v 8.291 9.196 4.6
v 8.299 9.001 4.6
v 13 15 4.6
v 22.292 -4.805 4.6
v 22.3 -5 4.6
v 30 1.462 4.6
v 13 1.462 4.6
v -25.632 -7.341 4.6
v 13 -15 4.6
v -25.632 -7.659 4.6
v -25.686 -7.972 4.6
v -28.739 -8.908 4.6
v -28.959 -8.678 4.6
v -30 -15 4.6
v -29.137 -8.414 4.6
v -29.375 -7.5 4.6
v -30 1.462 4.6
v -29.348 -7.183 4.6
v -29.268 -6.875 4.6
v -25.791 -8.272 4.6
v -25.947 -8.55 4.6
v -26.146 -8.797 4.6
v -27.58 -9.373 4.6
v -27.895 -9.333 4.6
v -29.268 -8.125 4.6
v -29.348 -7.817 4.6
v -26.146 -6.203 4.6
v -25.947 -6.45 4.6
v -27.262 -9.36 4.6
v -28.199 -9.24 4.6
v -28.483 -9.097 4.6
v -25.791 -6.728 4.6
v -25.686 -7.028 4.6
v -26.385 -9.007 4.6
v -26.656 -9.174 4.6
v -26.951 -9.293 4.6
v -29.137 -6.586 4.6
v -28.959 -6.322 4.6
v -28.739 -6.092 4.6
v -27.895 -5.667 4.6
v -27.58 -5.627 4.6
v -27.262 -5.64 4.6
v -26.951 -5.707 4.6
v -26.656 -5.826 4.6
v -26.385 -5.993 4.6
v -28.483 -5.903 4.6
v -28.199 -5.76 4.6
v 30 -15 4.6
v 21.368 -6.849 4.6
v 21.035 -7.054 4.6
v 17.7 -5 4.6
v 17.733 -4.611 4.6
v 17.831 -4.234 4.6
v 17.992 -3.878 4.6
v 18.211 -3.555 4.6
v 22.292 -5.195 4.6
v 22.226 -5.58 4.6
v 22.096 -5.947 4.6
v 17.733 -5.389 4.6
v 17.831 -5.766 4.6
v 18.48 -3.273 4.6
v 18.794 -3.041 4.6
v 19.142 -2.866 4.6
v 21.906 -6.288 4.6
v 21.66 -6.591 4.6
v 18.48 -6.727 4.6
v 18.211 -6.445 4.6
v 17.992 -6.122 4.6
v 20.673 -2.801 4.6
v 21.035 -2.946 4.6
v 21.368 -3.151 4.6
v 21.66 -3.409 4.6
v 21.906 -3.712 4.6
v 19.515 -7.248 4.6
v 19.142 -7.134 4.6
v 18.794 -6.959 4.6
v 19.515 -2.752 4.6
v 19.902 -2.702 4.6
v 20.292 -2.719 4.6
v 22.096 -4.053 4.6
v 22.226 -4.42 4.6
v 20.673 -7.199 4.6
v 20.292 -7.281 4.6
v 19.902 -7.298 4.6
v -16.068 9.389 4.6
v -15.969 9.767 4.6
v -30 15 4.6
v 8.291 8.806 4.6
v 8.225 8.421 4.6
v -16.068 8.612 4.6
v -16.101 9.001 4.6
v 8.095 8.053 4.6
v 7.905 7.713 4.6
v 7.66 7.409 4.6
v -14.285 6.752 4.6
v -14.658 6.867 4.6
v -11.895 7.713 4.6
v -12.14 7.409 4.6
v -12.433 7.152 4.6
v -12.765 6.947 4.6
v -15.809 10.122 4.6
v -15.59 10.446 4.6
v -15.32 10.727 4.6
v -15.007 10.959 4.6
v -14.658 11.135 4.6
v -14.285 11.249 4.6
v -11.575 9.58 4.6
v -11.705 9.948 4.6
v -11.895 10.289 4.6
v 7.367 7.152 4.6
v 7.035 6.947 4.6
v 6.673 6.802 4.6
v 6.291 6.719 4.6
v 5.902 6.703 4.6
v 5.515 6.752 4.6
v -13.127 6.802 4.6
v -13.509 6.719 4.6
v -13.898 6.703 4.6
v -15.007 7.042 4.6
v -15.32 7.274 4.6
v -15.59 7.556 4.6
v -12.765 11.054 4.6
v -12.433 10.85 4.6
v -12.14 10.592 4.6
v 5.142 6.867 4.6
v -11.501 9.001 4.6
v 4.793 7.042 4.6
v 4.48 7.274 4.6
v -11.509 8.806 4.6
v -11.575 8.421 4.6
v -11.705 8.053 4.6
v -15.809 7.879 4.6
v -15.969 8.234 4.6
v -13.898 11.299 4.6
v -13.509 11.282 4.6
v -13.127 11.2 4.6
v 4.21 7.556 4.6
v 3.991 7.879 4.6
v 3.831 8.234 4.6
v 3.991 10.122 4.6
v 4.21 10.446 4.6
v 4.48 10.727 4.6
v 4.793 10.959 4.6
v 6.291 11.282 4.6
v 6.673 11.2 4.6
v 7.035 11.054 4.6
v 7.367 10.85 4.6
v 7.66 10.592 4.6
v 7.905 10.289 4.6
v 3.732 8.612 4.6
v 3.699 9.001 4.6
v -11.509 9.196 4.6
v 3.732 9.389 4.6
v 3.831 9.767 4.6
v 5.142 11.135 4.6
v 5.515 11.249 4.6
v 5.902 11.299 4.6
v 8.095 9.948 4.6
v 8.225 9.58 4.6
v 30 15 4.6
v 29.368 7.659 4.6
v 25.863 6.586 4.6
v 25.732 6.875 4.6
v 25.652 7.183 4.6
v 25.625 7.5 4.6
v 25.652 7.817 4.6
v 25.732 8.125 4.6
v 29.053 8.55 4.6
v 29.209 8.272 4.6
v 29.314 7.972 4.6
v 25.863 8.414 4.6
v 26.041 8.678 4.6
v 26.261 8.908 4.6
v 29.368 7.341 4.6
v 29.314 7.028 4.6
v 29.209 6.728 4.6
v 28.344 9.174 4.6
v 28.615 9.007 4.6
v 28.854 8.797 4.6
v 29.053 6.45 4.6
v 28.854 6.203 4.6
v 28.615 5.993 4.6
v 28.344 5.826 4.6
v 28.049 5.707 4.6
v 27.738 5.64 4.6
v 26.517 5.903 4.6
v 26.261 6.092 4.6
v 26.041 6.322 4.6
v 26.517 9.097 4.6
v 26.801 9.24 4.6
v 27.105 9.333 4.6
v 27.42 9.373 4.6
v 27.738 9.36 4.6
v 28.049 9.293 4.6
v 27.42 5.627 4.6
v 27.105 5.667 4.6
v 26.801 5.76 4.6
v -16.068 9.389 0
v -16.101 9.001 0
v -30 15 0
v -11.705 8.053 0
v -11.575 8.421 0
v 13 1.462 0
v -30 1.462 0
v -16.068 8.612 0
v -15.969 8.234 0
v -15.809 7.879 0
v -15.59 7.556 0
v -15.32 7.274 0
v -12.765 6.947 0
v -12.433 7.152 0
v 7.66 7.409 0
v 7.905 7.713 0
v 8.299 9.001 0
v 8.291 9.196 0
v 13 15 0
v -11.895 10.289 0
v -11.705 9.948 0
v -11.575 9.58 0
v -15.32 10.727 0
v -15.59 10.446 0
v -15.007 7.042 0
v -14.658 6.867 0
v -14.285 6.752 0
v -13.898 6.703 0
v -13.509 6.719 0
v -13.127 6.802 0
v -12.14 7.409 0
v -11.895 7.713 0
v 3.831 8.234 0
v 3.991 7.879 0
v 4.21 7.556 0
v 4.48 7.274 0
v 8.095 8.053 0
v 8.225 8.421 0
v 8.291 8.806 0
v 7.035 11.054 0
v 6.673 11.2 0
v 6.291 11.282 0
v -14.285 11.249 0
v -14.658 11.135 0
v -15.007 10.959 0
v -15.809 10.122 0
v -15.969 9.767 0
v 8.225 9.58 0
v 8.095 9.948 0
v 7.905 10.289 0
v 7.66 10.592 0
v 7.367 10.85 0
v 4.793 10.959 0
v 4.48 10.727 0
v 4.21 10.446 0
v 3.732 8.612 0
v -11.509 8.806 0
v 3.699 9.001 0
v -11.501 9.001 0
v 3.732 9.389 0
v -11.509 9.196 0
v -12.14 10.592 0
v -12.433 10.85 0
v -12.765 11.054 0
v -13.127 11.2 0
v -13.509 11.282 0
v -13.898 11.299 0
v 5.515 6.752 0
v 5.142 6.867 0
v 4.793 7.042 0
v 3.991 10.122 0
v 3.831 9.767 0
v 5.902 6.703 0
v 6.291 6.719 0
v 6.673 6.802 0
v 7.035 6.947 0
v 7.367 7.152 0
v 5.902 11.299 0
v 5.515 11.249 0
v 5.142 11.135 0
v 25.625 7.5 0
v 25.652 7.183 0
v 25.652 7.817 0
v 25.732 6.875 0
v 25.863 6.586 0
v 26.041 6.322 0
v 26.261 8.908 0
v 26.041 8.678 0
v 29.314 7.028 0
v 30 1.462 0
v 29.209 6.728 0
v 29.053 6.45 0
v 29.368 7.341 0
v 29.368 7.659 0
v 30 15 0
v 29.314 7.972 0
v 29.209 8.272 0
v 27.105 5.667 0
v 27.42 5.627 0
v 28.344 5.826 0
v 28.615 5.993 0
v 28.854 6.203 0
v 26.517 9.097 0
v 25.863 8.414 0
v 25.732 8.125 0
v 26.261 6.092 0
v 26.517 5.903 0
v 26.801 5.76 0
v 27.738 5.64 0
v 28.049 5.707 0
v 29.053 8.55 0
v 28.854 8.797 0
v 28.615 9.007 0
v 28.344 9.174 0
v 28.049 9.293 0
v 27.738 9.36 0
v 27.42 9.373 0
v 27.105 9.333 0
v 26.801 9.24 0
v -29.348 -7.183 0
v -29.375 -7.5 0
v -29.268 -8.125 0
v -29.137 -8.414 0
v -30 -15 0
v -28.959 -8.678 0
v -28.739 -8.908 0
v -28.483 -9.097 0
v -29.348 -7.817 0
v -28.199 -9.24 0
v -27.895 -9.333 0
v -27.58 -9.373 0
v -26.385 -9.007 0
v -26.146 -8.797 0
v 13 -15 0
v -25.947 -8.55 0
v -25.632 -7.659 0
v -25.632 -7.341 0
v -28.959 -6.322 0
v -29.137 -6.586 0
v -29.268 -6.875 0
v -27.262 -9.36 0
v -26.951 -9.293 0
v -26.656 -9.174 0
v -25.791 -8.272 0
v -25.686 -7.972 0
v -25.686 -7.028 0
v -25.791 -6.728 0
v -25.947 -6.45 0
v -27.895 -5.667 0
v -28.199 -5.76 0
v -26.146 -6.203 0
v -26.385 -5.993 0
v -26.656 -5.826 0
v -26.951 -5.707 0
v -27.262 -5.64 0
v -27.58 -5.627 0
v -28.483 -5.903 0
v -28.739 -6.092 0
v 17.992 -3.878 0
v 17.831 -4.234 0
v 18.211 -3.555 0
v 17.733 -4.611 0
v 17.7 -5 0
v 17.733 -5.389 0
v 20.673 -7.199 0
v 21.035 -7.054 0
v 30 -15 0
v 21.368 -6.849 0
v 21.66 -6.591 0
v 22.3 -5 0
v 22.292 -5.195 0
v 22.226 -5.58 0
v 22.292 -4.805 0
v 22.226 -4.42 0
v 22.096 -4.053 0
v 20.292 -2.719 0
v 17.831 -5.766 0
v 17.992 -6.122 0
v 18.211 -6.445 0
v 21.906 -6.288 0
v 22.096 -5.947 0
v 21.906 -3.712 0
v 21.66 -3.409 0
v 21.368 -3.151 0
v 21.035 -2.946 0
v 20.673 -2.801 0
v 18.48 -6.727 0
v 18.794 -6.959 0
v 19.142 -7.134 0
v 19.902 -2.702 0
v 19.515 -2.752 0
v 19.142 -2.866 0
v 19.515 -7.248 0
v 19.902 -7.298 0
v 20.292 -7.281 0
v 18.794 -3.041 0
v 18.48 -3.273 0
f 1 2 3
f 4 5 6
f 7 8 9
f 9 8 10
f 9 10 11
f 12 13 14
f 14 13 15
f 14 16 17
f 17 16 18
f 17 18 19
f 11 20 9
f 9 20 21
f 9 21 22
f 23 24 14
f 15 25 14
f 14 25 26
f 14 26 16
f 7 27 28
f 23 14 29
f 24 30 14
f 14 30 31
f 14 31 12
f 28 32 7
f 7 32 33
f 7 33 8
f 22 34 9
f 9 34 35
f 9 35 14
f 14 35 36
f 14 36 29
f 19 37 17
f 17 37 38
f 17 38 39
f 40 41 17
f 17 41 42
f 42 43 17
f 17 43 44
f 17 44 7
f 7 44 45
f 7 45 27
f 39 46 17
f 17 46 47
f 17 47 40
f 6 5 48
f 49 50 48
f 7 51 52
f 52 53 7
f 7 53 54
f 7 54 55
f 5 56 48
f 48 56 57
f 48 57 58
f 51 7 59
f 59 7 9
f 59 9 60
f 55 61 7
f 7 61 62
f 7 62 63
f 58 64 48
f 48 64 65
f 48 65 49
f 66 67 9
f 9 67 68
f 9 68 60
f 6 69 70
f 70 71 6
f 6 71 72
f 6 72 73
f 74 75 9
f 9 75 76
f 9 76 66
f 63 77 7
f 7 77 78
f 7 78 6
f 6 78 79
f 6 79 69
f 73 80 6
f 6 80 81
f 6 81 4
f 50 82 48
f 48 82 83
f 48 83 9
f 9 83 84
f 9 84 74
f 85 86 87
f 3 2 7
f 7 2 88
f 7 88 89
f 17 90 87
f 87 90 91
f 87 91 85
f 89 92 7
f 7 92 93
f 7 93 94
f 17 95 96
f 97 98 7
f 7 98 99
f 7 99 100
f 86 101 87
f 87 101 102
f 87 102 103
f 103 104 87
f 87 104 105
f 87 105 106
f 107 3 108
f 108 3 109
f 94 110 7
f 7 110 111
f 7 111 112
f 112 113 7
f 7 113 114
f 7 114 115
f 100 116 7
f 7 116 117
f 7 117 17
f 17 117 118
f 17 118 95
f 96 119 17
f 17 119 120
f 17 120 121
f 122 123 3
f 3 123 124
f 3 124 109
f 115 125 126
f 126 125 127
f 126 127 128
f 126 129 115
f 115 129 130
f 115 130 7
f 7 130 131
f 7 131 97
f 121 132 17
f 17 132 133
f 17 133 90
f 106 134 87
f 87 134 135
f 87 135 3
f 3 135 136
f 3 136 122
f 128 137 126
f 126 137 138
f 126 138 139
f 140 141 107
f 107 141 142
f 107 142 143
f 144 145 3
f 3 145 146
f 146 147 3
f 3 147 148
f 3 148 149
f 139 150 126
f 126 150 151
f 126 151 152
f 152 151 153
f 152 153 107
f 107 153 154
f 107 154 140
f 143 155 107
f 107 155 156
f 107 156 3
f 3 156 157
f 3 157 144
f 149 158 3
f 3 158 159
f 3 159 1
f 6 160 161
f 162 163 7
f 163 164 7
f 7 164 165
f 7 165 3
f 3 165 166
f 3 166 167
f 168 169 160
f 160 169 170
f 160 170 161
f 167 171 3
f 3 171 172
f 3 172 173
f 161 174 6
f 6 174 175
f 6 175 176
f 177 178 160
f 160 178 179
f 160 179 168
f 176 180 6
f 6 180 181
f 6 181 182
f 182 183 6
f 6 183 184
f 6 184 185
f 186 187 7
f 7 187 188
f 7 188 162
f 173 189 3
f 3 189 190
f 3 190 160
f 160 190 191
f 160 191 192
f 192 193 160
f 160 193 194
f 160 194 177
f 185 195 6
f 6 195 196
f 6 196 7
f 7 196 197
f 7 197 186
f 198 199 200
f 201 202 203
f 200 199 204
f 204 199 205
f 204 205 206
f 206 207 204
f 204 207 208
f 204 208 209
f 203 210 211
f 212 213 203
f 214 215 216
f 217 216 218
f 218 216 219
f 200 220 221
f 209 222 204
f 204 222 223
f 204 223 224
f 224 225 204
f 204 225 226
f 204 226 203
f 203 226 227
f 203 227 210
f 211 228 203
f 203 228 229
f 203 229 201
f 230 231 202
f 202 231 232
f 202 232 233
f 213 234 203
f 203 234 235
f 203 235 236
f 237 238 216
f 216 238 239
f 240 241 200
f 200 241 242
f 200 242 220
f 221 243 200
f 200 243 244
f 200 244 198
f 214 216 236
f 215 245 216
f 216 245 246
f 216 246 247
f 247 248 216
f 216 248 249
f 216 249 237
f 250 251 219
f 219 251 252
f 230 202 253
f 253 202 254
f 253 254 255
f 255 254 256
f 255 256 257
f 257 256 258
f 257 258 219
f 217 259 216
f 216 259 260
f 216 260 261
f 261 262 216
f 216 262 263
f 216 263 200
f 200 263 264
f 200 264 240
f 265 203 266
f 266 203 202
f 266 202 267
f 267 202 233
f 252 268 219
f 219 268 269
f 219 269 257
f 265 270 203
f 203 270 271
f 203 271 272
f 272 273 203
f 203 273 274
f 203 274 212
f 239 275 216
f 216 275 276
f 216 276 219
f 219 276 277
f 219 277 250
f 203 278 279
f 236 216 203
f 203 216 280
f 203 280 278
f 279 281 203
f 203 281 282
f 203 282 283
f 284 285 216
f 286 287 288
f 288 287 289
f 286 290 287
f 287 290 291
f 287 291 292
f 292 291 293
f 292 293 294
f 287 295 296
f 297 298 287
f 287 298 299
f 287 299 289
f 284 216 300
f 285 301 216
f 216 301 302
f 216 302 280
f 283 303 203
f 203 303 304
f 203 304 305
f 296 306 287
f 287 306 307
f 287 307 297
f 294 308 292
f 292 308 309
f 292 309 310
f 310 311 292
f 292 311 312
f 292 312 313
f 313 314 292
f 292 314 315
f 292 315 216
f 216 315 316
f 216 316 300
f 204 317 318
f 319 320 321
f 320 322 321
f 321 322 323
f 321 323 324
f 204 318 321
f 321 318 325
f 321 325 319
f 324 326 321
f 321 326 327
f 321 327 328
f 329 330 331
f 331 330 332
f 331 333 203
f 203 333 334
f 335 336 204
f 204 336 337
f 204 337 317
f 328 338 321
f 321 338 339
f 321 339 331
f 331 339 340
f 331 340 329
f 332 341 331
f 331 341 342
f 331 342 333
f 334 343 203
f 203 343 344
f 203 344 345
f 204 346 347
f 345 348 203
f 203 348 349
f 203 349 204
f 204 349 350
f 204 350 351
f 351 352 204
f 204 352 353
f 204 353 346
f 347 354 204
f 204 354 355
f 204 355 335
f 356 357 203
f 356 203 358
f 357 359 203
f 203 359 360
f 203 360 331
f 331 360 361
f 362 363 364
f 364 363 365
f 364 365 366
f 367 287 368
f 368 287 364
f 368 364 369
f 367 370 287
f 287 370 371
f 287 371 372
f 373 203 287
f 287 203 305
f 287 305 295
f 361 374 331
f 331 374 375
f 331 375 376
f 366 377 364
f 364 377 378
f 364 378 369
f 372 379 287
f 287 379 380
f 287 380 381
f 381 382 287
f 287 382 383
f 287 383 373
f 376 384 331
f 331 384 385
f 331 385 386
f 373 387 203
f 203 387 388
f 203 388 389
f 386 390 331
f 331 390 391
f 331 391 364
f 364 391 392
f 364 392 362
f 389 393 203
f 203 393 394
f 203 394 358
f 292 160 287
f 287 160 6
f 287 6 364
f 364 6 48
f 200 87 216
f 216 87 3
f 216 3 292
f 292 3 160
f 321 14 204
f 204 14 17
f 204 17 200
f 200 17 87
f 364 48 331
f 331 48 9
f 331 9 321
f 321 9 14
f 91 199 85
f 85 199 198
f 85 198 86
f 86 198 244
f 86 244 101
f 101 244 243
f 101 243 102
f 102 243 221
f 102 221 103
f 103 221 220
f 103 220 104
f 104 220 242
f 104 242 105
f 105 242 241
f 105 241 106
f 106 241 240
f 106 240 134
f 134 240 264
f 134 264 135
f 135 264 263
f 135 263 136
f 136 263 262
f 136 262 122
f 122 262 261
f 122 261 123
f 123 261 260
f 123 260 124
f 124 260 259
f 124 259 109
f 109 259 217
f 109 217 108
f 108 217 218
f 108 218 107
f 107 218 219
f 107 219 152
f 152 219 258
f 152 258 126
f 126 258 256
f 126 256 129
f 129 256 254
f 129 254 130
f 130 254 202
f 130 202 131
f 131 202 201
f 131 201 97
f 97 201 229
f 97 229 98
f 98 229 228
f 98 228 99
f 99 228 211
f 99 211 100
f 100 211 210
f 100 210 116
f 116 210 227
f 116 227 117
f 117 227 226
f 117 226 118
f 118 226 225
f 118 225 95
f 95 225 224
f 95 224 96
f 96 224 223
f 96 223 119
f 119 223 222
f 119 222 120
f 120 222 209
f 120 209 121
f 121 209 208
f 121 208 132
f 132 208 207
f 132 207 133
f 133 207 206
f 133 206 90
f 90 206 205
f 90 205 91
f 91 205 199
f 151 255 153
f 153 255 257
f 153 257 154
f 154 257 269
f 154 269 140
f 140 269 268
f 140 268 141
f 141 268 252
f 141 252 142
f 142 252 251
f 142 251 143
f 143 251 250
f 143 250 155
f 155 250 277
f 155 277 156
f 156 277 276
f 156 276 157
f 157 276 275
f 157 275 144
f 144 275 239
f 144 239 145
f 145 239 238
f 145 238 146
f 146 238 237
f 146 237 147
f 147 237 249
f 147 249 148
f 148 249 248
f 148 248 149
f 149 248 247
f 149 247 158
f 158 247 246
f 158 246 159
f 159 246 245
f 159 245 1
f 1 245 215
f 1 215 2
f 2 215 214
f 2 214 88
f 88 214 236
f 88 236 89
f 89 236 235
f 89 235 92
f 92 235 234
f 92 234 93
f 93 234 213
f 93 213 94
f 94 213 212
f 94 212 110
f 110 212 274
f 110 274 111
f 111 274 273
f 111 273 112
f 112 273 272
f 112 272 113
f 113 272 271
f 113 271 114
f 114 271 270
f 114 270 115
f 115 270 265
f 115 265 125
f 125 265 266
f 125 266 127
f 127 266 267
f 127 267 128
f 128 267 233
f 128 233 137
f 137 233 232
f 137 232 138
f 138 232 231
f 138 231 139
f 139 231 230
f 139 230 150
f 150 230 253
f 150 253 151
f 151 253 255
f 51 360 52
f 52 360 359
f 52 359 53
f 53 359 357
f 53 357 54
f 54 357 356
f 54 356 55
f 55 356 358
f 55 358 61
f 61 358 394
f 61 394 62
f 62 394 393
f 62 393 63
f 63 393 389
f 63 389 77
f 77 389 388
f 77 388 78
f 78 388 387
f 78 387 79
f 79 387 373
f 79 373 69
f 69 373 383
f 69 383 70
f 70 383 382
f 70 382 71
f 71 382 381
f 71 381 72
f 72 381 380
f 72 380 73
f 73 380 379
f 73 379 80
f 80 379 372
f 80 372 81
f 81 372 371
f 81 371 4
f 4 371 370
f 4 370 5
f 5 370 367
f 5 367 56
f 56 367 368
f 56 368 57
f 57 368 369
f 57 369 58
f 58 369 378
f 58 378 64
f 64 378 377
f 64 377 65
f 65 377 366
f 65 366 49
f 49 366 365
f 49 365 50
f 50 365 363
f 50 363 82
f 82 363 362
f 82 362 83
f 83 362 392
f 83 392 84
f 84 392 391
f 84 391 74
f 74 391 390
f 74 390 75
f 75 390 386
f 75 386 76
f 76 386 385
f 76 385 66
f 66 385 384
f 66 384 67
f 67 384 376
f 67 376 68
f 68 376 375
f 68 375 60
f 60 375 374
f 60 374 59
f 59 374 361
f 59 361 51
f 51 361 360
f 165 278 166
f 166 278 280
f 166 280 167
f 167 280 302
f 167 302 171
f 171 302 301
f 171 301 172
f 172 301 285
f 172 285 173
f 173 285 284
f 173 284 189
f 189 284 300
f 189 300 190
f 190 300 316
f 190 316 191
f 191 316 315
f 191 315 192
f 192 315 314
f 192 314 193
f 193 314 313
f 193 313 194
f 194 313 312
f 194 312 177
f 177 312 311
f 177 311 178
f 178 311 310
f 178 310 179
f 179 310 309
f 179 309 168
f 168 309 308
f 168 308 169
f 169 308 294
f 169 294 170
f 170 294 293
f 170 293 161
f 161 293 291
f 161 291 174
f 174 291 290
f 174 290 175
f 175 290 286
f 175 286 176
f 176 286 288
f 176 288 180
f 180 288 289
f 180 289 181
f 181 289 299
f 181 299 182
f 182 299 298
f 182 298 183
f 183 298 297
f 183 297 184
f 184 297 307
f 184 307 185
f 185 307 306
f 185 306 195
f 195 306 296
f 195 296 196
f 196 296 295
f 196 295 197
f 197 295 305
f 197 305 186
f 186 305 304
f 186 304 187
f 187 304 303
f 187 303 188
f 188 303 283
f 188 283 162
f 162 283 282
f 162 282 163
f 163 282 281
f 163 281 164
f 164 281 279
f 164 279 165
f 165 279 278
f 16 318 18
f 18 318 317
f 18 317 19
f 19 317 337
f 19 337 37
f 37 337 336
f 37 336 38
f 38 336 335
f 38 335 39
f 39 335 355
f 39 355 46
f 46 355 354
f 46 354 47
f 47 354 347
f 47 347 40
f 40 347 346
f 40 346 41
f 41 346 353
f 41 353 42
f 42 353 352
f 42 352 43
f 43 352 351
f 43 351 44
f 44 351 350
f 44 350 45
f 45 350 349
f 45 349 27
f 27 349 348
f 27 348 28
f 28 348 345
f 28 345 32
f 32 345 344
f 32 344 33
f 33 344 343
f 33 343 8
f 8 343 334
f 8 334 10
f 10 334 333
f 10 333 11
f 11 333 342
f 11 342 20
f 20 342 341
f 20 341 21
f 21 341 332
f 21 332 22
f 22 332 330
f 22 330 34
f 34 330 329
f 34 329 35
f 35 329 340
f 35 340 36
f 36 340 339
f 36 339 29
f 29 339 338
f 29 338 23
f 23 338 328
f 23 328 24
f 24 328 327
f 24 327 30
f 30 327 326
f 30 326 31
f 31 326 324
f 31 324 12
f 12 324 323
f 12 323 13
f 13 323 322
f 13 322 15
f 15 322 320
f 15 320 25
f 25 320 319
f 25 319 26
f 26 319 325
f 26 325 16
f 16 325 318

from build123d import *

# Parameters (mm, degrees)
SKETCH1_W                      = 60
SKETCH1_H                      = 30
SKETCH1_R                      = 2.3
BOSS_EXTRUDE1_DEPTH            = 4.6
CUT_EXTRUDE1_REACH             = 35.855
SKETCH2_R                      = 1.875
CUT_EXTRUDE1_DIRECTION_2_DEPTH = 34.854984862


with BuildPart() as part:
    # Sketch1 → Boss-Extrude1 (new body)
    with BuildSketch(Plane.XY):
        Rectangle(SKETCH1_W, SKETCH1_H)
        with Locations((-13.800714267, 9.000714267)):
            Circle(SKETCH1_R, mode=Mode.SUBTRACT)
        with Locations((5.999285733, 9.000714267)):
            Circle(SKETCH1_R, mode=Mode.SUBTRACT)
        with Locations((20, -5)):
            Circle(SKETCH1_R, mode=Mode.SUBTRACT)
    extrude(amount=BOSS_EXTRUDE1_DEPTH)

    # Sketch2 → Cut-Extrude1 (cut, up to next)
    with BuildSketch(Plane.XY.offset(4.6), mode=Mode.PRIVATE) as cut_extrude1_sk1:
        with Locations(Location((-27.5, -7.5, 0), (0, 0, 180))):
            Circle(SKETCH2_R)
    cut_extrude1_tool1 = extrude(cut_extrude1_sk1.sketch, amount=-CUT_EXTRUDE1_REACH, mode=Mode.PRIVATE) & part.part
    # Sketch2 → Cut-Extrude1 (cut, up to next)
    with BuildSketch(Plane.XY.offset(4.6), mode=Mode.PRIVATE) as cut_extrude1_sk2:
        with Locations(Location((27.5, 7.5, 0), (0, 0, 180))):
            Circle(SKETCH2_R)
    cut_extrude1_tool2 = extrude(cut_extrude1_sk2.sketch, amount=-CUT_EXTRUDE1_REACH, mode=Mode.PRIVATE) & part.part
    add(cut_extrude1_tool1.solids().sort_by_distance((-27.5, -7.5, 4.6))[0], mode=Mode.SUBTRACT)
    add(cut_extrude1_tool2.solids().sort_by_distance((27.5, 7.5, 4.6))[0], mode=Mode.SUBTRACT)

    # Sketch2 → Cut-Extrude1 direction 2 (cut)
    with BuildSketch(Plane.XY.offset(4.6)):
        with Locations(Location((-27.5, -7.5, 0), (0, 0, 180))):
            Circle(SKETCH2_R)
        with Locations(Location((27.5, 7.5, 0), (0, 0, 180))):
            Circle(SKETCH2_R)
    extrude(amount=CUT_EXTRUDE1_DIRECTION_2_DEPTH, mode=Mode.SUBTRACT)


solid = part.part
